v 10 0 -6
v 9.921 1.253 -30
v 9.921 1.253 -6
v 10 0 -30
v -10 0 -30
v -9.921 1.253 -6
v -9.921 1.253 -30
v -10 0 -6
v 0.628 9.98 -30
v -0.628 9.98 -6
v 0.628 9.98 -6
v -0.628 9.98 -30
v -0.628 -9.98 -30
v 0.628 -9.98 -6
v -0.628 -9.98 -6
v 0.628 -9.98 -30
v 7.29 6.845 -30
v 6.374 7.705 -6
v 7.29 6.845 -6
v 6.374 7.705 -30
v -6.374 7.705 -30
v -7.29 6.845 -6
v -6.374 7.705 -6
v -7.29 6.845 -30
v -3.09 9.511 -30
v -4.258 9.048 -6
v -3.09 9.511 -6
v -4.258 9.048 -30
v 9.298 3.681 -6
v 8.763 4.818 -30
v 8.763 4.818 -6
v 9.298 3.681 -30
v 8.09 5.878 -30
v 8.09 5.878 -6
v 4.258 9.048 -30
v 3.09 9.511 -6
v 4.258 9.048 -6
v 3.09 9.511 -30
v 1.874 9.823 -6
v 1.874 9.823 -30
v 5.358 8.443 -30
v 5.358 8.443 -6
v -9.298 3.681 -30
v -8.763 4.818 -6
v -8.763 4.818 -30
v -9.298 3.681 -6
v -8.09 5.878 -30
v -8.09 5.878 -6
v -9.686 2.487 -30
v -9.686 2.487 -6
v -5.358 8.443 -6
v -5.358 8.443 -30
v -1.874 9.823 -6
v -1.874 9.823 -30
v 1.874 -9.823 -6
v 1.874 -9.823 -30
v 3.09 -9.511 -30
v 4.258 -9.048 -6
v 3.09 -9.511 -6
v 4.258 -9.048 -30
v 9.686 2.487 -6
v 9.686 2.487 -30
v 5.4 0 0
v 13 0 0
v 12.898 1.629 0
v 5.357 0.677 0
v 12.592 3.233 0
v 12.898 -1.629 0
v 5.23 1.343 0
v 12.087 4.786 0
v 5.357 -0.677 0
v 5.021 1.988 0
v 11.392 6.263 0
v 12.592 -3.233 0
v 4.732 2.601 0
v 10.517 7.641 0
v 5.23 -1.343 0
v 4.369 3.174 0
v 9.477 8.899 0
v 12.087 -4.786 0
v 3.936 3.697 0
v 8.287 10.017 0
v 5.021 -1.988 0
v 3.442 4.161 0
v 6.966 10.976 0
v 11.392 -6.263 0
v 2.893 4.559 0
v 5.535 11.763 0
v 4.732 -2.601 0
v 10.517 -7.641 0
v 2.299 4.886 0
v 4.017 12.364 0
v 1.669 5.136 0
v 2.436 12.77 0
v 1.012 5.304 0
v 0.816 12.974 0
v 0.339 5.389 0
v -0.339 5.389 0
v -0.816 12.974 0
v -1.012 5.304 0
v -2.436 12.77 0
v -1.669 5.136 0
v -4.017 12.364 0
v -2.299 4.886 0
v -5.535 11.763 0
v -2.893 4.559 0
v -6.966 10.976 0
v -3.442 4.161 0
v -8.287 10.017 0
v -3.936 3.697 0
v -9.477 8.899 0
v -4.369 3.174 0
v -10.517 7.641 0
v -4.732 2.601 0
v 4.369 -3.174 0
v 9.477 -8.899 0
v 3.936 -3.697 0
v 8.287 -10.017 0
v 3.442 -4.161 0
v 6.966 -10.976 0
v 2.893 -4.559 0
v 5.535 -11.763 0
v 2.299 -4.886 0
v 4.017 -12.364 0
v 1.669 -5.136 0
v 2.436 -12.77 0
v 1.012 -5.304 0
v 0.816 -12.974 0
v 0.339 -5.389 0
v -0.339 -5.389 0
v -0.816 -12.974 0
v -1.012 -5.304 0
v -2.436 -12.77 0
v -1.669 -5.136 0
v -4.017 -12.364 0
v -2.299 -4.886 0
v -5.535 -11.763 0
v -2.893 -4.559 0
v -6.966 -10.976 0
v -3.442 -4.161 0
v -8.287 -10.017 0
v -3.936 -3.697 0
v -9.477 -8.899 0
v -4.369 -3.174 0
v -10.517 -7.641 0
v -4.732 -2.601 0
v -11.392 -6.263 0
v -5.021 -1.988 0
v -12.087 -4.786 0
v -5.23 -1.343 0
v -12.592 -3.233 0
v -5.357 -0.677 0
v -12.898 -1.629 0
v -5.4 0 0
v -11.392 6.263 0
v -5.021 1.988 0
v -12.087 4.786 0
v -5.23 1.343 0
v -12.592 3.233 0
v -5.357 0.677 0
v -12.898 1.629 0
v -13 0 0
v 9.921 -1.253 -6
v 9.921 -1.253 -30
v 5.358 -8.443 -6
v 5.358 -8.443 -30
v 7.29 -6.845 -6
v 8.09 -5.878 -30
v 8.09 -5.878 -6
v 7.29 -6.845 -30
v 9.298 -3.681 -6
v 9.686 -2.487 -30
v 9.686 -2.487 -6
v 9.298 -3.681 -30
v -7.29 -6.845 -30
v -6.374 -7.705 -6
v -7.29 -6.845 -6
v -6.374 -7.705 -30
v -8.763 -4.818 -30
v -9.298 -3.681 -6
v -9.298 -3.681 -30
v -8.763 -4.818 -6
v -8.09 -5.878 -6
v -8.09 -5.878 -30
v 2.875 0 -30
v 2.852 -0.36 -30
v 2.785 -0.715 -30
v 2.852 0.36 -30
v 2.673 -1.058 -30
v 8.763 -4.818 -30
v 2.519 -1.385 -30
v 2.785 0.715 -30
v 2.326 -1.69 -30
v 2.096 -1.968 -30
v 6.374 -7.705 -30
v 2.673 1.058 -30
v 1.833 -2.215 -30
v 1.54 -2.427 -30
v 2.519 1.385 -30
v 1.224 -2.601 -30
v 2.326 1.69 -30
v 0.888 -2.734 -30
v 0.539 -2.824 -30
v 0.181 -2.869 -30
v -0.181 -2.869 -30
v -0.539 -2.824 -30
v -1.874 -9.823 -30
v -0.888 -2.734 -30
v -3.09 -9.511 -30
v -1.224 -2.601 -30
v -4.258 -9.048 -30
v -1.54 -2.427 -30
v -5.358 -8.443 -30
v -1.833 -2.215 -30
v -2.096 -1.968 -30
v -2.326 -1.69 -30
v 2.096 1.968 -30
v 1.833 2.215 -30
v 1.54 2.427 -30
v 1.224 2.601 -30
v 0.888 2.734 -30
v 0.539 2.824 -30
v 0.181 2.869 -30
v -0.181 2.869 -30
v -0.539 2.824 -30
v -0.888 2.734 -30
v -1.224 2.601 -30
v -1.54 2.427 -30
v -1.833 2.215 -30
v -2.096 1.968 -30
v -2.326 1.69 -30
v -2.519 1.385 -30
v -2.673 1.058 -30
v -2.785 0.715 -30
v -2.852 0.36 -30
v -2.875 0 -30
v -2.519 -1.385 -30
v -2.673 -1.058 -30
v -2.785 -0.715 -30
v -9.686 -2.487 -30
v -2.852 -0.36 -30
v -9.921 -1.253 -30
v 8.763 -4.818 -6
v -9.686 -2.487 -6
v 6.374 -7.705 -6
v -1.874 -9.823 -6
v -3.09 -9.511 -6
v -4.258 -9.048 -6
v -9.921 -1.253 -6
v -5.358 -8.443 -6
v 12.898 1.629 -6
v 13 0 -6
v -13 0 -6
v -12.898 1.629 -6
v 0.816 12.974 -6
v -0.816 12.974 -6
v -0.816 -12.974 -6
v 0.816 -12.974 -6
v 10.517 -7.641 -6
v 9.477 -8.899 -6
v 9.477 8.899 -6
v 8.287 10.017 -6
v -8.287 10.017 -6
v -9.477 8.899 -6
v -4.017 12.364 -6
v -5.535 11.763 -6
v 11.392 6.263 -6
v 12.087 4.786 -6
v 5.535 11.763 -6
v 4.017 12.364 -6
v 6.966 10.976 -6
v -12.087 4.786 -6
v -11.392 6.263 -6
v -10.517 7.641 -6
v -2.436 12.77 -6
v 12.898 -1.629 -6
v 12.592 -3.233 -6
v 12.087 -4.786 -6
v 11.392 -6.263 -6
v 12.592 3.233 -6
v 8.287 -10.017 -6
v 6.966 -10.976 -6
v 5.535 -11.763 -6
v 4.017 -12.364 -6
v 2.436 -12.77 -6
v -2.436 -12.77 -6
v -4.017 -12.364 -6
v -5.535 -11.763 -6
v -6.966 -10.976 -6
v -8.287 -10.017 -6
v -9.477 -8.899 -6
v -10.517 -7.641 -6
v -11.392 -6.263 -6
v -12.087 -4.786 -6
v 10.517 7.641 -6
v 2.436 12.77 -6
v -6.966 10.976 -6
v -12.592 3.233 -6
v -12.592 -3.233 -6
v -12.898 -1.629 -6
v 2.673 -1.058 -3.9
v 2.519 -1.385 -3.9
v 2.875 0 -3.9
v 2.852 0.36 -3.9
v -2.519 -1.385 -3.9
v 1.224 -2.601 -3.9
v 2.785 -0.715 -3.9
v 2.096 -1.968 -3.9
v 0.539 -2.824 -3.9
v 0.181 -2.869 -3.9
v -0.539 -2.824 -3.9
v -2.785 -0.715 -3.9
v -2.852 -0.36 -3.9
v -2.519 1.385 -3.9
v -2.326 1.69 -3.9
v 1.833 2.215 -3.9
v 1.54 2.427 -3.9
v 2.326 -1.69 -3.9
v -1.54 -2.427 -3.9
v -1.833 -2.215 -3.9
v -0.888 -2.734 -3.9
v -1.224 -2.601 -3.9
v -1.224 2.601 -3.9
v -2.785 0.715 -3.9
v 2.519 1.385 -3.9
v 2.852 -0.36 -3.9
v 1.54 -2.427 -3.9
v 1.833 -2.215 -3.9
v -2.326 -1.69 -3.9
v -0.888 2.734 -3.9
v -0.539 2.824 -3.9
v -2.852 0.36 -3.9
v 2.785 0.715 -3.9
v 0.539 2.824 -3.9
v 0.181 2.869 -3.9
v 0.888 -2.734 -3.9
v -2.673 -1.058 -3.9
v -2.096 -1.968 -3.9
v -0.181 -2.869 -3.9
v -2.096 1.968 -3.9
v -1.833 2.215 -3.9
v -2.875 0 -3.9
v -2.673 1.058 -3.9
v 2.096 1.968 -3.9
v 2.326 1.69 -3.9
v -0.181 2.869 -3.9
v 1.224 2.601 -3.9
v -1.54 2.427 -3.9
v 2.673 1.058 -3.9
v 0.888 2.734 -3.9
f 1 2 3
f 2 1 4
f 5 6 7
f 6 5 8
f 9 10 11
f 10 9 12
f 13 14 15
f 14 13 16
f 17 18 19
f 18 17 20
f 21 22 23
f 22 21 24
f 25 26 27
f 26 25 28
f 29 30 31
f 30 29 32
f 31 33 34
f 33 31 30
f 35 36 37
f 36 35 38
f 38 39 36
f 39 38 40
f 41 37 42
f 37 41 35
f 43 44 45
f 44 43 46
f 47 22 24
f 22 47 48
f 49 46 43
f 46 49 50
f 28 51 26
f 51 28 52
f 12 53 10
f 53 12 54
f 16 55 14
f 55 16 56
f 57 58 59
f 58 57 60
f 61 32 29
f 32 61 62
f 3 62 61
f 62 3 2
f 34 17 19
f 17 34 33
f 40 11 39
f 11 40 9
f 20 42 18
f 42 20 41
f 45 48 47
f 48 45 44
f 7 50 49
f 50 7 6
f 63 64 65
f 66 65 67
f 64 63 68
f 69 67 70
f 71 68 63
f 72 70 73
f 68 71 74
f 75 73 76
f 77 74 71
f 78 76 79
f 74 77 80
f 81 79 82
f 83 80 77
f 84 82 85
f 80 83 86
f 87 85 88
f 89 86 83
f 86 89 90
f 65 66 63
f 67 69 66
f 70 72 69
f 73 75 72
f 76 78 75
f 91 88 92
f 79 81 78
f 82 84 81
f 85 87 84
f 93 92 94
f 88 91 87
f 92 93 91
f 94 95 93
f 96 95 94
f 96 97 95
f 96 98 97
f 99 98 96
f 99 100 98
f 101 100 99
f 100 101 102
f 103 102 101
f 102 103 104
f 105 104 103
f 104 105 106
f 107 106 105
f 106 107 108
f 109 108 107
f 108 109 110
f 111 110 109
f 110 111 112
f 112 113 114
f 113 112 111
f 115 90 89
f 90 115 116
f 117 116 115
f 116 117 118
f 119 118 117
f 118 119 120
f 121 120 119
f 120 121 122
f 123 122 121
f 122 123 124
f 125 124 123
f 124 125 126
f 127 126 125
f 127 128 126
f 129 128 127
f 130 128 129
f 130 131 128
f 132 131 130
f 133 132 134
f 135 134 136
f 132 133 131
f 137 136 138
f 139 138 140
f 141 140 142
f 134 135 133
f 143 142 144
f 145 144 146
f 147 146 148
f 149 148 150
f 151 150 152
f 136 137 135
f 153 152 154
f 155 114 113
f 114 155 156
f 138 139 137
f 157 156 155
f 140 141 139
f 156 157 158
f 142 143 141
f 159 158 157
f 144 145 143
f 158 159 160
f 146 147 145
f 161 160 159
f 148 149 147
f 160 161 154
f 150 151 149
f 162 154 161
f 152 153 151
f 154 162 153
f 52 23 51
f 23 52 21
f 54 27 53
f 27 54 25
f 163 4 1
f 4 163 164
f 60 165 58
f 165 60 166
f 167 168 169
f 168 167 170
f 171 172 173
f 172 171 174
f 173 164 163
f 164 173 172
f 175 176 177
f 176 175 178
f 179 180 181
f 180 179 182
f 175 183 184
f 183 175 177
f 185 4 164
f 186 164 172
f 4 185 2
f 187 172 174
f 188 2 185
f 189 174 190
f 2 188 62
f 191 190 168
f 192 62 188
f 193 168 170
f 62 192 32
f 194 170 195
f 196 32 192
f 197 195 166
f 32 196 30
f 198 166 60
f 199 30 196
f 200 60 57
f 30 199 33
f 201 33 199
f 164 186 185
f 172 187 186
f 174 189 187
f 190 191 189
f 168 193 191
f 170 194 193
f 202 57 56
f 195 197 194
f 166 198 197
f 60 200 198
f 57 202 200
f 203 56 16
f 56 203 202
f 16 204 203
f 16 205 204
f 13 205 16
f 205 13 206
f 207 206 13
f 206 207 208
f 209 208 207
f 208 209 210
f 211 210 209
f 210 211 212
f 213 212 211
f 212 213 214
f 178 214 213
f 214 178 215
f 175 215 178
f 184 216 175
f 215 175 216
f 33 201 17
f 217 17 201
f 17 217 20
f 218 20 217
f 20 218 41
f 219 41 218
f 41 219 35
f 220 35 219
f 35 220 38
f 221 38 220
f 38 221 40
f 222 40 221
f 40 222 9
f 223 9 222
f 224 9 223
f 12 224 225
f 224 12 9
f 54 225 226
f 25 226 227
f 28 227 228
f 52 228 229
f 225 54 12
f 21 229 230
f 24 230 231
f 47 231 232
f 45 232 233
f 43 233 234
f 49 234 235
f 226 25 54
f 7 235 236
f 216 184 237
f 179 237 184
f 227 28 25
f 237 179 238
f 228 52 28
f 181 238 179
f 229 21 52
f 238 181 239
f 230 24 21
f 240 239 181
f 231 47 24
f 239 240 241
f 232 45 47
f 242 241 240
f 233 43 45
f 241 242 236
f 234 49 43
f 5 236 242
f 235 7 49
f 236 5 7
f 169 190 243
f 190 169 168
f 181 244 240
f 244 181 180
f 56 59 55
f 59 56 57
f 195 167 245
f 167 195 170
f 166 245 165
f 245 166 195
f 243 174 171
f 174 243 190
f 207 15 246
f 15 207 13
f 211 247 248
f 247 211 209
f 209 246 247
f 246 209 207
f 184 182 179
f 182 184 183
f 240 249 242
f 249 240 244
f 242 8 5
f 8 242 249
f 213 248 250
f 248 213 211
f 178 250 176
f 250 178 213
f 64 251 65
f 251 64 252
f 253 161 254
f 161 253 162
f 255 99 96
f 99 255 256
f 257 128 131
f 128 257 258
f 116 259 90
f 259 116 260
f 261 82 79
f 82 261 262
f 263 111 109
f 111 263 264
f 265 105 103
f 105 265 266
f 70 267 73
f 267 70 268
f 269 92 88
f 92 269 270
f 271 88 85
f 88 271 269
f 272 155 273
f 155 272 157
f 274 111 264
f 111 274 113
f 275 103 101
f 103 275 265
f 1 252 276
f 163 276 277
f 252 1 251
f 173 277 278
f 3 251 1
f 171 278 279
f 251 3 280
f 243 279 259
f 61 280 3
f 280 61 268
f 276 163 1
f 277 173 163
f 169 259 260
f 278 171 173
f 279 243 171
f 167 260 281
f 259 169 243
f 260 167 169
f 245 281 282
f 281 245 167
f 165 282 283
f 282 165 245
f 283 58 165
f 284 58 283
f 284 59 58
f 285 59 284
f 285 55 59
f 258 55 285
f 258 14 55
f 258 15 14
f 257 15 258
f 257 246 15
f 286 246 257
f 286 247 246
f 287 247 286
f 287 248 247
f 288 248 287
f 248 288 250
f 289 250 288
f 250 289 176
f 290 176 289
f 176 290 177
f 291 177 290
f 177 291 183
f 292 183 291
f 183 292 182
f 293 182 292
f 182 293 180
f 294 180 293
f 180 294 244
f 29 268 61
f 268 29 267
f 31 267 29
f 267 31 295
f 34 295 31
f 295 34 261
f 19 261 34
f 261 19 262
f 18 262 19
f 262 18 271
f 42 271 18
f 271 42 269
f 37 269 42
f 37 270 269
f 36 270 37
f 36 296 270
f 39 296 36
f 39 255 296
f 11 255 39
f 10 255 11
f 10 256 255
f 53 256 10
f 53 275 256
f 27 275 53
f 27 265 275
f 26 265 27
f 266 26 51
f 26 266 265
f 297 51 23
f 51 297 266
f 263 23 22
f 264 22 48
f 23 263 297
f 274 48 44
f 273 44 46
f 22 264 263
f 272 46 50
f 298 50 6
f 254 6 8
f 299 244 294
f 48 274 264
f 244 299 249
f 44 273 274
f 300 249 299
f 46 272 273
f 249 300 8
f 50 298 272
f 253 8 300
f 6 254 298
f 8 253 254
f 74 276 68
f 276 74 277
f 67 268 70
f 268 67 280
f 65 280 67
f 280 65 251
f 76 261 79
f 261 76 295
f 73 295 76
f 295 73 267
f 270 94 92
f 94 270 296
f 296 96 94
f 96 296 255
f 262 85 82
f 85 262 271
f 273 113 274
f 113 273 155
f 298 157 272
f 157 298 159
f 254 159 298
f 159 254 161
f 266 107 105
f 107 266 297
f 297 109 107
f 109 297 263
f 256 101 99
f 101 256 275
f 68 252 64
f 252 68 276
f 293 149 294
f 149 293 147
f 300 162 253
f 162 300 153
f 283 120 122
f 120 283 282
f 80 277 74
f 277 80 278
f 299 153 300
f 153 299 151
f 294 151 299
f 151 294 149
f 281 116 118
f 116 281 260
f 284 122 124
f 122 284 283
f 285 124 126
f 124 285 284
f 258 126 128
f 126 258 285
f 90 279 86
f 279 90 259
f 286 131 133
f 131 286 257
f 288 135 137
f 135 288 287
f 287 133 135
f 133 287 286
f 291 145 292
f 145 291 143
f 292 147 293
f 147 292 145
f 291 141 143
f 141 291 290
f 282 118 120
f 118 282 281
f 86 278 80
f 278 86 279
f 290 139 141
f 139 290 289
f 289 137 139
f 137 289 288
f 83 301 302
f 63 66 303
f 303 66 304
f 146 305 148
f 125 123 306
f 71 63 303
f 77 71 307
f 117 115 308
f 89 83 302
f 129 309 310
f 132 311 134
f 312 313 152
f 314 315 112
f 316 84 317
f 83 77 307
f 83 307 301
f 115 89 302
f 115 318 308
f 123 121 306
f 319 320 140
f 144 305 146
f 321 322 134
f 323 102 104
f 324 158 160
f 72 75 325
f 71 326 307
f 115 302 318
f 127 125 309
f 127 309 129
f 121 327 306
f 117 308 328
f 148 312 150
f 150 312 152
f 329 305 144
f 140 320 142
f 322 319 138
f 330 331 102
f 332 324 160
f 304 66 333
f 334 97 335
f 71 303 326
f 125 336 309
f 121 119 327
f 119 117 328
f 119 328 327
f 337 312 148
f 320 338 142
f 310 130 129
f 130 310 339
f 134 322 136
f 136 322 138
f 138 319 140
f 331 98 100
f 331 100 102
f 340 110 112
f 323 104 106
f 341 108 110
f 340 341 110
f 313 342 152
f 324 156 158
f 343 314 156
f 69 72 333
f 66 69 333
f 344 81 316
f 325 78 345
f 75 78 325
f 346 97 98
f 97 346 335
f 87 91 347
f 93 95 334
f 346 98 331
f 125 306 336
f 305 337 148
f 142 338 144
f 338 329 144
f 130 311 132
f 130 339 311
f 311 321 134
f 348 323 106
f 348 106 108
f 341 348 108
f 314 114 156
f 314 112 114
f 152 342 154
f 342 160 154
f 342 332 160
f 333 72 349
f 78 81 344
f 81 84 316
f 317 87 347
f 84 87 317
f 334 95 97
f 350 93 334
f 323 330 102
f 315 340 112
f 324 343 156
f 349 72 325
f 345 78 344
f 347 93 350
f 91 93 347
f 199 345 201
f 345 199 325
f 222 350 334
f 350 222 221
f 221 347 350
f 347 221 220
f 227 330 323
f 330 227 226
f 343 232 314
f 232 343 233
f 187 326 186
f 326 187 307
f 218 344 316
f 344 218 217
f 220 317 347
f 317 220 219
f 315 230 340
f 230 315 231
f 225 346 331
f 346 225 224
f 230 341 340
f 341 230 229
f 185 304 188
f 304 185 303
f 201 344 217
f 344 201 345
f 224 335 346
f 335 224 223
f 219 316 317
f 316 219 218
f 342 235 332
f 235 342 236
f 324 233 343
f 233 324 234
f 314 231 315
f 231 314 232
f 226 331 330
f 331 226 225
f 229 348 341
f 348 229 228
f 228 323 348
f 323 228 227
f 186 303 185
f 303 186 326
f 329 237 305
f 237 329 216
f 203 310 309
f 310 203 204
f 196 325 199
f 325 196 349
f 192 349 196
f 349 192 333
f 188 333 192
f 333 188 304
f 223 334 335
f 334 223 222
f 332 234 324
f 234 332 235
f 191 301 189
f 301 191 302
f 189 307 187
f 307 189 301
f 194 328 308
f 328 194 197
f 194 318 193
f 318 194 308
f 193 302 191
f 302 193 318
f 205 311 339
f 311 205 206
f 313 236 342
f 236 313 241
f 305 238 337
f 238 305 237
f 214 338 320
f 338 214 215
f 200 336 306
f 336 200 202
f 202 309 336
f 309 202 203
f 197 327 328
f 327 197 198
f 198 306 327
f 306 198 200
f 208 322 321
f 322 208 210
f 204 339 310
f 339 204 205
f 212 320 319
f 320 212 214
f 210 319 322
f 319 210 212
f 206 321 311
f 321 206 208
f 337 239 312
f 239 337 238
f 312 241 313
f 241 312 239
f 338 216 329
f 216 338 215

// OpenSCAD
$fn = 50;


difference() {
	union() {
		translate(v = [0, 0, -30.0000000000]) {
			cylinder(h = 30, r = 10.0000000000);
		}
		translate(v = [0, 0, -6.0000000000]) {
			cylinder(h = 6, r = 13.0000000000);
		}
	}
	union() {
		translate(v = [0, 0, 0]) {
			rotate(a = [0, 0, 0]) {
				difference() {
					union() {
						#translate(v = [0, 0, -30.0000000000]) {
							cylinder(h = 30, r = 2.6000000000);
						}
						#translate(v = [0, 0, -3.9000000000]) {
							cylinder(h = 3.9000000000, r1 = 2.8750000000, r2 = 5.4000000000);
						}
						#translate(v = [0, 0, -30.0000000000]) {
							cylinder(h = 30, r = 2.8750000000);
						}
						#translate(v = [0, 0, -30.0000000000]) {
							cylinder(h = 30, r = 2.6000000000);
						}
					}
					union();
				}
			}
		}
	}
}
